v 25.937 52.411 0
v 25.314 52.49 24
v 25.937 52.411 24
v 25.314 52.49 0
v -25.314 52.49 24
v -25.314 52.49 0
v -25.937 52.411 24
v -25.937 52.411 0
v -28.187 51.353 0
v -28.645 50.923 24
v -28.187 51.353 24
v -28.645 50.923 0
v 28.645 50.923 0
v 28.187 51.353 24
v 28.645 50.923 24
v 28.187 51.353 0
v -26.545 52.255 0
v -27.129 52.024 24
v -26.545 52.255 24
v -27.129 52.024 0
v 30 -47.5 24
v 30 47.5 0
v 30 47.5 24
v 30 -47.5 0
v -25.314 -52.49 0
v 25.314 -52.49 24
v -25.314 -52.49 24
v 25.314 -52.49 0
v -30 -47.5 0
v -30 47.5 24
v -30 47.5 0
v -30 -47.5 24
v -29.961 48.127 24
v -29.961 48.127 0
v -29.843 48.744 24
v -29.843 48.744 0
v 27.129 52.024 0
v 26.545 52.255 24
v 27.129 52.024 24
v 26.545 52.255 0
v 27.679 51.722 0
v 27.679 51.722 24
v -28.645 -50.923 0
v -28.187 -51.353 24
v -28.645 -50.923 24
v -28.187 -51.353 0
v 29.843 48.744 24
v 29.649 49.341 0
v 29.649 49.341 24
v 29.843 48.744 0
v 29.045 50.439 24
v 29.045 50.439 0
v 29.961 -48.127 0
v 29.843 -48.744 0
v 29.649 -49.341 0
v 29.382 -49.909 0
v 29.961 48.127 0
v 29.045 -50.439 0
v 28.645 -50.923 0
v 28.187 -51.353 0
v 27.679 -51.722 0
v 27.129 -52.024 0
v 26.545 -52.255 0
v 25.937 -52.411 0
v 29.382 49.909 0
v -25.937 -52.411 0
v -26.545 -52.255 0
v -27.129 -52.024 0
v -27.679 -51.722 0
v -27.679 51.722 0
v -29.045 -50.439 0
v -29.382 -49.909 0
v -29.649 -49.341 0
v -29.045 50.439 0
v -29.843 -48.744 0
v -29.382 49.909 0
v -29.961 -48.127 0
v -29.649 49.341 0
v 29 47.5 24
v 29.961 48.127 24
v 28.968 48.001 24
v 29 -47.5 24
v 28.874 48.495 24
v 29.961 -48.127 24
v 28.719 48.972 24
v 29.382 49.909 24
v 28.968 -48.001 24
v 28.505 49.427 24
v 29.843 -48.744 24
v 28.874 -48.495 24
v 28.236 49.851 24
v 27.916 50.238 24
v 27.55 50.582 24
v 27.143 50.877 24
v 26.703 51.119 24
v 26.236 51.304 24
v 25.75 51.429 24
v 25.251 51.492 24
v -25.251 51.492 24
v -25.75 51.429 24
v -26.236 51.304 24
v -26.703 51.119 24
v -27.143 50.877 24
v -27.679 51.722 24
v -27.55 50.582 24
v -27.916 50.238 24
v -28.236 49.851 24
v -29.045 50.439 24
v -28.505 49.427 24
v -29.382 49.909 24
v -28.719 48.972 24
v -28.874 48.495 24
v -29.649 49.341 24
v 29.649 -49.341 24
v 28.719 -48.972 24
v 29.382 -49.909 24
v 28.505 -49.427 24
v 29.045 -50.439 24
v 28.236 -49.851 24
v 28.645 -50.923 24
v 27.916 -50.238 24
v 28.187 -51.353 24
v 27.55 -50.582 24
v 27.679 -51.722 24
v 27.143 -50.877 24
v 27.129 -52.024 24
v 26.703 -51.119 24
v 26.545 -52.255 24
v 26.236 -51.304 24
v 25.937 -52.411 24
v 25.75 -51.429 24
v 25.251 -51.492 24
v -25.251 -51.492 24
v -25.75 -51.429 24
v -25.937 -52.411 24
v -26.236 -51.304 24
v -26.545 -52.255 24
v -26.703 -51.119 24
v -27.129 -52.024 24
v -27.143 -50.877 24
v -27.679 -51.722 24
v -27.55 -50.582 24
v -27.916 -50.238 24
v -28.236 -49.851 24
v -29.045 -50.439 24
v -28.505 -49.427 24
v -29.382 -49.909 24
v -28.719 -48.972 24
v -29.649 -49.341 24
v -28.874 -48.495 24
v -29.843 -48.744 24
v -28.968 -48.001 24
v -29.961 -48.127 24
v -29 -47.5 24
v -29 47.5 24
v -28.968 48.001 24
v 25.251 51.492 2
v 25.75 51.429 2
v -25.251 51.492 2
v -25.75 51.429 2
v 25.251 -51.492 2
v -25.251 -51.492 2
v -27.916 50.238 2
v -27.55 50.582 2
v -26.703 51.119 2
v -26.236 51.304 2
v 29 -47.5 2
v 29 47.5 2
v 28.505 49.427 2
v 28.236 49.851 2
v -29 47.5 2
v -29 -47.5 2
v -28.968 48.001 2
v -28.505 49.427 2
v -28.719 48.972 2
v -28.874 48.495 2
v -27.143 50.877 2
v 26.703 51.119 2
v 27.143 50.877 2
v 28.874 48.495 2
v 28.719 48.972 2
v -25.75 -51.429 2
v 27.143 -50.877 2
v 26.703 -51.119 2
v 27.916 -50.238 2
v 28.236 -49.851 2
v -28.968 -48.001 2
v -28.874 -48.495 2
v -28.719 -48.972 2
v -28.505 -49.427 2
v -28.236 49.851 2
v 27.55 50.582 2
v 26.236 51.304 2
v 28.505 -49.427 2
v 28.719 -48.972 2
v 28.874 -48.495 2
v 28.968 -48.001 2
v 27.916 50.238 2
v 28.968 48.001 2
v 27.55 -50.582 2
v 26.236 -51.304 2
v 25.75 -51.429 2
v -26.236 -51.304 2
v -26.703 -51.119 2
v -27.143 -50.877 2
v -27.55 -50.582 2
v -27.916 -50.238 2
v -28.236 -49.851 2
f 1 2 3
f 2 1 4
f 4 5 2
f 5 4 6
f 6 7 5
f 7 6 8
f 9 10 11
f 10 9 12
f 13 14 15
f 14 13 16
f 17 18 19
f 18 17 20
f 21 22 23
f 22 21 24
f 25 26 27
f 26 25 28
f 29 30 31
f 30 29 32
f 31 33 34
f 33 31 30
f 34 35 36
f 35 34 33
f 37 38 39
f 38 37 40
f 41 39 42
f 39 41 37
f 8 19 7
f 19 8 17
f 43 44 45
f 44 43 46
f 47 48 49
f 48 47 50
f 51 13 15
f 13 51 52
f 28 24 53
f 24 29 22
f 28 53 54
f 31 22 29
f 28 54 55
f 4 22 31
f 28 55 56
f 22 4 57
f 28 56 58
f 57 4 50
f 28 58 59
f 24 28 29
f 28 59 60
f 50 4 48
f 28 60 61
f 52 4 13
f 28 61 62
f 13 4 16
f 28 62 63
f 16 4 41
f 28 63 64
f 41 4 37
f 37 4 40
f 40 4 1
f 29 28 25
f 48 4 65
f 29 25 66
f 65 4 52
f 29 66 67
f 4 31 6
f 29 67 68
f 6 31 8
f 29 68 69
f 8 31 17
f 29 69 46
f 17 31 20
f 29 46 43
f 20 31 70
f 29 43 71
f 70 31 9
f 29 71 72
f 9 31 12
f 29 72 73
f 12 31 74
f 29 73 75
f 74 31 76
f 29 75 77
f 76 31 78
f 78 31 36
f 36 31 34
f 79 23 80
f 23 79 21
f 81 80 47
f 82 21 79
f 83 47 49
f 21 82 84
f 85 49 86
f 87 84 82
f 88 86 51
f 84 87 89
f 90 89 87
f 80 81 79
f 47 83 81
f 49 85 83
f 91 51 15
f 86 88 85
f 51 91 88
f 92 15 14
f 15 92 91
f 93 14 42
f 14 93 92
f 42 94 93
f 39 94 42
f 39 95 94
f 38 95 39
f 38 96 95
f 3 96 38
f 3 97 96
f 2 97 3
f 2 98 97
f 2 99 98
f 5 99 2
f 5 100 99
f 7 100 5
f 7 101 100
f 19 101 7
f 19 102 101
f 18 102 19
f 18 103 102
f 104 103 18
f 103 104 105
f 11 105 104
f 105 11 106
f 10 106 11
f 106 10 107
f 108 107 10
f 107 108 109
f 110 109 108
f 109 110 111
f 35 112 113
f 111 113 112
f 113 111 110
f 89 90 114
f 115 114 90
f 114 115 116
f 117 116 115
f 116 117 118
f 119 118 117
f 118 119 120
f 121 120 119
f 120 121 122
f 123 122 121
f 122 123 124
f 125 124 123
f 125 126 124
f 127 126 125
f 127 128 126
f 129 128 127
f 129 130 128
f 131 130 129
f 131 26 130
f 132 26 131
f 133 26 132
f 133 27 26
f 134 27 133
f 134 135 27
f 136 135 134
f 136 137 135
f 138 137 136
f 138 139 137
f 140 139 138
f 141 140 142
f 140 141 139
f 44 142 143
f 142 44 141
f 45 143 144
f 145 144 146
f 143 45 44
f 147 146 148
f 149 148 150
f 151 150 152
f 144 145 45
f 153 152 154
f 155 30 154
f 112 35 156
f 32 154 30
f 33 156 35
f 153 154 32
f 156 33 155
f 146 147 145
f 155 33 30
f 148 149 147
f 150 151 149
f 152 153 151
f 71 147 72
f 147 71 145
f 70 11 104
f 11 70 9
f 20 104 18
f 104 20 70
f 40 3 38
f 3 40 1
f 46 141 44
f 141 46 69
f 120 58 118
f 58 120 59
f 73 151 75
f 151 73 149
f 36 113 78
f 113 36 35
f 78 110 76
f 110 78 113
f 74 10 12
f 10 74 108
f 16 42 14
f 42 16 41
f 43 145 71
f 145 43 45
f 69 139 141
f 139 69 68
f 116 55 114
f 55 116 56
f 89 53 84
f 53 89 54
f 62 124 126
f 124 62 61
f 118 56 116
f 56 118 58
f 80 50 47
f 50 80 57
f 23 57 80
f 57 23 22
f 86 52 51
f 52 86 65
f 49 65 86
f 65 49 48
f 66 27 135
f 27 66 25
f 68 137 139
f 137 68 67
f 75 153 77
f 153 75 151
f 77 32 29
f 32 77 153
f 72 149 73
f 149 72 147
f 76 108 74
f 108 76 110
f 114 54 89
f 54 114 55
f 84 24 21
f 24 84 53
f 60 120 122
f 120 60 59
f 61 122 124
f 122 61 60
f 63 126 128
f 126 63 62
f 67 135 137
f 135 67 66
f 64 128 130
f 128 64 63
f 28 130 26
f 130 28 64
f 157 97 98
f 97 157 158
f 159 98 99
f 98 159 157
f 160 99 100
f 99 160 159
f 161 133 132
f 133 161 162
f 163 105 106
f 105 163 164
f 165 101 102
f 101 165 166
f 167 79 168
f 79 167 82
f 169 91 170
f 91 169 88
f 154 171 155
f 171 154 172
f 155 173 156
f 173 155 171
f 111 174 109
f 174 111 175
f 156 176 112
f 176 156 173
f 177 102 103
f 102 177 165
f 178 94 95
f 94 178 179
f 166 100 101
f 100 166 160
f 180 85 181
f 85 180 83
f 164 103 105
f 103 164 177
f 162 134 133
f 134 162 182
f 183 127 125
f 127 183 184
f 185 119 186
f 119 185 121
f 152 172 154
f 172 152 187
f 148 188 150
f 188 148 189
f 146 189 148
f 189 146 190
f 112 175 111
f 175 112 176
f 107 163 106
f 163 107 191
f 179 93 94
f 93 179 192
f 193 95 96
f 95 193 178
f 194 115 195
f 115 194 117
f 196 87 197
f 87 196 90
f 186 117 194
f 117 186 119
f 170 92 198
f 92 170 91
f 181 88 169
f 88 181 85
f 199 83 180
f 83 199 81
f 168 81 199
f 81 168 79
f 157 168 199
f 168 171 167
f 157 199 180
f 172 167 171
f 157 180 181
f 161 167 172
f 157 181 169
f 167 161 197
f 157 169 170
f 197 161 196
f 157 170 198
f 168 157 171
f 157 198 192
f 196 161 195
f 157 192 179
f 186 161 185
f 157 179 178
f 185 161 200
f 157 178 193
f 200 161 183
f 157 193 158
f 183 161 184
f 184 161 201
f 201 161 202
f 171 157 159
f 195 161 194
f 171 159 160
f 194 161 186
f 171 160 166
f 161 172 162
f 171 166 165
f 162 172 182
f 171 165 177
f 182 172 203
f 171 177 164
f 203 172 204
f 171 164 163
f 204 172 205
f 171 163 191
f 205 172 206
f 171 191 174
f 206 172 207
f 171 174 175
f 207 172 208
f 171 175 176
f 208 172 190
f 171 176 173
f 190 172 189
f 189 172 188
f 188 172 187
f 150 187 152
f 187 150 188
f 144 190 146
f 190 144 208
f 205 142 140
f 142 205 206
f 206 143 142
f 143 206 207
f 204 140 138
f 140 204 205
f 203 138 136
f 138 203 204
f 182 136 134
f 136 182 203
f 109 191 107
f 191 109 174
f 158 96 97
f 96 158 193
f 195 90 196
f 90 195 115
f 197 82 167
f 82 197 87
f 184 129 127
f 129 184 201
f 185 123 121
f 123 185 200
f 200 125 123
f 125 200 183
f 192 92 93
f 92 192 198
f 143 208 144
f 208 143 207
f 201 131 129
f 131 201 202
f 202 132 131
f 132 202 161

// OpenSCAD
$fn = 50;


difference() {
	union() {
		hull() {
			translate(v = [-25.0000000000, 47.5000000000, 0]) {
				cylinder(h = 24, r = 5);
			}
			translate(v = [25.0000000000, 47.5000000000, 0]) {
				cylinder(h = 24, r = 5);
			}
			translate(v = [-25.0000000000, -47.5000000000, 0]) {
				cylinder(h = 24, r = 5);
			}
			translate(v = [25.0000000000, -47.5000000000, 0]) {
				cylinder(h = 24, r = 5);
			}
		}
	}
	union() {
		translate(v = [0, 0, 2]) {
			hull() {
				translate(v = [-25.0000000000, 47.5000000000, 0]) {
					cylinder(h = 22, r = 4);
				}
				translate(v = [25.0000000000, 47.5000000000, 0]) {
					cylinder(h = 22, r = 4);
				}
				translate(v = [-25.0000000000, -47.5000000000, 0]) {
					cylinder(h = 22, r = 4);
				}
				translate(v = [25.0000000000, -47.5000000000, 0]) {
					cylinder(h = 22, r = 4);
				}
			}
		}
	}
}
